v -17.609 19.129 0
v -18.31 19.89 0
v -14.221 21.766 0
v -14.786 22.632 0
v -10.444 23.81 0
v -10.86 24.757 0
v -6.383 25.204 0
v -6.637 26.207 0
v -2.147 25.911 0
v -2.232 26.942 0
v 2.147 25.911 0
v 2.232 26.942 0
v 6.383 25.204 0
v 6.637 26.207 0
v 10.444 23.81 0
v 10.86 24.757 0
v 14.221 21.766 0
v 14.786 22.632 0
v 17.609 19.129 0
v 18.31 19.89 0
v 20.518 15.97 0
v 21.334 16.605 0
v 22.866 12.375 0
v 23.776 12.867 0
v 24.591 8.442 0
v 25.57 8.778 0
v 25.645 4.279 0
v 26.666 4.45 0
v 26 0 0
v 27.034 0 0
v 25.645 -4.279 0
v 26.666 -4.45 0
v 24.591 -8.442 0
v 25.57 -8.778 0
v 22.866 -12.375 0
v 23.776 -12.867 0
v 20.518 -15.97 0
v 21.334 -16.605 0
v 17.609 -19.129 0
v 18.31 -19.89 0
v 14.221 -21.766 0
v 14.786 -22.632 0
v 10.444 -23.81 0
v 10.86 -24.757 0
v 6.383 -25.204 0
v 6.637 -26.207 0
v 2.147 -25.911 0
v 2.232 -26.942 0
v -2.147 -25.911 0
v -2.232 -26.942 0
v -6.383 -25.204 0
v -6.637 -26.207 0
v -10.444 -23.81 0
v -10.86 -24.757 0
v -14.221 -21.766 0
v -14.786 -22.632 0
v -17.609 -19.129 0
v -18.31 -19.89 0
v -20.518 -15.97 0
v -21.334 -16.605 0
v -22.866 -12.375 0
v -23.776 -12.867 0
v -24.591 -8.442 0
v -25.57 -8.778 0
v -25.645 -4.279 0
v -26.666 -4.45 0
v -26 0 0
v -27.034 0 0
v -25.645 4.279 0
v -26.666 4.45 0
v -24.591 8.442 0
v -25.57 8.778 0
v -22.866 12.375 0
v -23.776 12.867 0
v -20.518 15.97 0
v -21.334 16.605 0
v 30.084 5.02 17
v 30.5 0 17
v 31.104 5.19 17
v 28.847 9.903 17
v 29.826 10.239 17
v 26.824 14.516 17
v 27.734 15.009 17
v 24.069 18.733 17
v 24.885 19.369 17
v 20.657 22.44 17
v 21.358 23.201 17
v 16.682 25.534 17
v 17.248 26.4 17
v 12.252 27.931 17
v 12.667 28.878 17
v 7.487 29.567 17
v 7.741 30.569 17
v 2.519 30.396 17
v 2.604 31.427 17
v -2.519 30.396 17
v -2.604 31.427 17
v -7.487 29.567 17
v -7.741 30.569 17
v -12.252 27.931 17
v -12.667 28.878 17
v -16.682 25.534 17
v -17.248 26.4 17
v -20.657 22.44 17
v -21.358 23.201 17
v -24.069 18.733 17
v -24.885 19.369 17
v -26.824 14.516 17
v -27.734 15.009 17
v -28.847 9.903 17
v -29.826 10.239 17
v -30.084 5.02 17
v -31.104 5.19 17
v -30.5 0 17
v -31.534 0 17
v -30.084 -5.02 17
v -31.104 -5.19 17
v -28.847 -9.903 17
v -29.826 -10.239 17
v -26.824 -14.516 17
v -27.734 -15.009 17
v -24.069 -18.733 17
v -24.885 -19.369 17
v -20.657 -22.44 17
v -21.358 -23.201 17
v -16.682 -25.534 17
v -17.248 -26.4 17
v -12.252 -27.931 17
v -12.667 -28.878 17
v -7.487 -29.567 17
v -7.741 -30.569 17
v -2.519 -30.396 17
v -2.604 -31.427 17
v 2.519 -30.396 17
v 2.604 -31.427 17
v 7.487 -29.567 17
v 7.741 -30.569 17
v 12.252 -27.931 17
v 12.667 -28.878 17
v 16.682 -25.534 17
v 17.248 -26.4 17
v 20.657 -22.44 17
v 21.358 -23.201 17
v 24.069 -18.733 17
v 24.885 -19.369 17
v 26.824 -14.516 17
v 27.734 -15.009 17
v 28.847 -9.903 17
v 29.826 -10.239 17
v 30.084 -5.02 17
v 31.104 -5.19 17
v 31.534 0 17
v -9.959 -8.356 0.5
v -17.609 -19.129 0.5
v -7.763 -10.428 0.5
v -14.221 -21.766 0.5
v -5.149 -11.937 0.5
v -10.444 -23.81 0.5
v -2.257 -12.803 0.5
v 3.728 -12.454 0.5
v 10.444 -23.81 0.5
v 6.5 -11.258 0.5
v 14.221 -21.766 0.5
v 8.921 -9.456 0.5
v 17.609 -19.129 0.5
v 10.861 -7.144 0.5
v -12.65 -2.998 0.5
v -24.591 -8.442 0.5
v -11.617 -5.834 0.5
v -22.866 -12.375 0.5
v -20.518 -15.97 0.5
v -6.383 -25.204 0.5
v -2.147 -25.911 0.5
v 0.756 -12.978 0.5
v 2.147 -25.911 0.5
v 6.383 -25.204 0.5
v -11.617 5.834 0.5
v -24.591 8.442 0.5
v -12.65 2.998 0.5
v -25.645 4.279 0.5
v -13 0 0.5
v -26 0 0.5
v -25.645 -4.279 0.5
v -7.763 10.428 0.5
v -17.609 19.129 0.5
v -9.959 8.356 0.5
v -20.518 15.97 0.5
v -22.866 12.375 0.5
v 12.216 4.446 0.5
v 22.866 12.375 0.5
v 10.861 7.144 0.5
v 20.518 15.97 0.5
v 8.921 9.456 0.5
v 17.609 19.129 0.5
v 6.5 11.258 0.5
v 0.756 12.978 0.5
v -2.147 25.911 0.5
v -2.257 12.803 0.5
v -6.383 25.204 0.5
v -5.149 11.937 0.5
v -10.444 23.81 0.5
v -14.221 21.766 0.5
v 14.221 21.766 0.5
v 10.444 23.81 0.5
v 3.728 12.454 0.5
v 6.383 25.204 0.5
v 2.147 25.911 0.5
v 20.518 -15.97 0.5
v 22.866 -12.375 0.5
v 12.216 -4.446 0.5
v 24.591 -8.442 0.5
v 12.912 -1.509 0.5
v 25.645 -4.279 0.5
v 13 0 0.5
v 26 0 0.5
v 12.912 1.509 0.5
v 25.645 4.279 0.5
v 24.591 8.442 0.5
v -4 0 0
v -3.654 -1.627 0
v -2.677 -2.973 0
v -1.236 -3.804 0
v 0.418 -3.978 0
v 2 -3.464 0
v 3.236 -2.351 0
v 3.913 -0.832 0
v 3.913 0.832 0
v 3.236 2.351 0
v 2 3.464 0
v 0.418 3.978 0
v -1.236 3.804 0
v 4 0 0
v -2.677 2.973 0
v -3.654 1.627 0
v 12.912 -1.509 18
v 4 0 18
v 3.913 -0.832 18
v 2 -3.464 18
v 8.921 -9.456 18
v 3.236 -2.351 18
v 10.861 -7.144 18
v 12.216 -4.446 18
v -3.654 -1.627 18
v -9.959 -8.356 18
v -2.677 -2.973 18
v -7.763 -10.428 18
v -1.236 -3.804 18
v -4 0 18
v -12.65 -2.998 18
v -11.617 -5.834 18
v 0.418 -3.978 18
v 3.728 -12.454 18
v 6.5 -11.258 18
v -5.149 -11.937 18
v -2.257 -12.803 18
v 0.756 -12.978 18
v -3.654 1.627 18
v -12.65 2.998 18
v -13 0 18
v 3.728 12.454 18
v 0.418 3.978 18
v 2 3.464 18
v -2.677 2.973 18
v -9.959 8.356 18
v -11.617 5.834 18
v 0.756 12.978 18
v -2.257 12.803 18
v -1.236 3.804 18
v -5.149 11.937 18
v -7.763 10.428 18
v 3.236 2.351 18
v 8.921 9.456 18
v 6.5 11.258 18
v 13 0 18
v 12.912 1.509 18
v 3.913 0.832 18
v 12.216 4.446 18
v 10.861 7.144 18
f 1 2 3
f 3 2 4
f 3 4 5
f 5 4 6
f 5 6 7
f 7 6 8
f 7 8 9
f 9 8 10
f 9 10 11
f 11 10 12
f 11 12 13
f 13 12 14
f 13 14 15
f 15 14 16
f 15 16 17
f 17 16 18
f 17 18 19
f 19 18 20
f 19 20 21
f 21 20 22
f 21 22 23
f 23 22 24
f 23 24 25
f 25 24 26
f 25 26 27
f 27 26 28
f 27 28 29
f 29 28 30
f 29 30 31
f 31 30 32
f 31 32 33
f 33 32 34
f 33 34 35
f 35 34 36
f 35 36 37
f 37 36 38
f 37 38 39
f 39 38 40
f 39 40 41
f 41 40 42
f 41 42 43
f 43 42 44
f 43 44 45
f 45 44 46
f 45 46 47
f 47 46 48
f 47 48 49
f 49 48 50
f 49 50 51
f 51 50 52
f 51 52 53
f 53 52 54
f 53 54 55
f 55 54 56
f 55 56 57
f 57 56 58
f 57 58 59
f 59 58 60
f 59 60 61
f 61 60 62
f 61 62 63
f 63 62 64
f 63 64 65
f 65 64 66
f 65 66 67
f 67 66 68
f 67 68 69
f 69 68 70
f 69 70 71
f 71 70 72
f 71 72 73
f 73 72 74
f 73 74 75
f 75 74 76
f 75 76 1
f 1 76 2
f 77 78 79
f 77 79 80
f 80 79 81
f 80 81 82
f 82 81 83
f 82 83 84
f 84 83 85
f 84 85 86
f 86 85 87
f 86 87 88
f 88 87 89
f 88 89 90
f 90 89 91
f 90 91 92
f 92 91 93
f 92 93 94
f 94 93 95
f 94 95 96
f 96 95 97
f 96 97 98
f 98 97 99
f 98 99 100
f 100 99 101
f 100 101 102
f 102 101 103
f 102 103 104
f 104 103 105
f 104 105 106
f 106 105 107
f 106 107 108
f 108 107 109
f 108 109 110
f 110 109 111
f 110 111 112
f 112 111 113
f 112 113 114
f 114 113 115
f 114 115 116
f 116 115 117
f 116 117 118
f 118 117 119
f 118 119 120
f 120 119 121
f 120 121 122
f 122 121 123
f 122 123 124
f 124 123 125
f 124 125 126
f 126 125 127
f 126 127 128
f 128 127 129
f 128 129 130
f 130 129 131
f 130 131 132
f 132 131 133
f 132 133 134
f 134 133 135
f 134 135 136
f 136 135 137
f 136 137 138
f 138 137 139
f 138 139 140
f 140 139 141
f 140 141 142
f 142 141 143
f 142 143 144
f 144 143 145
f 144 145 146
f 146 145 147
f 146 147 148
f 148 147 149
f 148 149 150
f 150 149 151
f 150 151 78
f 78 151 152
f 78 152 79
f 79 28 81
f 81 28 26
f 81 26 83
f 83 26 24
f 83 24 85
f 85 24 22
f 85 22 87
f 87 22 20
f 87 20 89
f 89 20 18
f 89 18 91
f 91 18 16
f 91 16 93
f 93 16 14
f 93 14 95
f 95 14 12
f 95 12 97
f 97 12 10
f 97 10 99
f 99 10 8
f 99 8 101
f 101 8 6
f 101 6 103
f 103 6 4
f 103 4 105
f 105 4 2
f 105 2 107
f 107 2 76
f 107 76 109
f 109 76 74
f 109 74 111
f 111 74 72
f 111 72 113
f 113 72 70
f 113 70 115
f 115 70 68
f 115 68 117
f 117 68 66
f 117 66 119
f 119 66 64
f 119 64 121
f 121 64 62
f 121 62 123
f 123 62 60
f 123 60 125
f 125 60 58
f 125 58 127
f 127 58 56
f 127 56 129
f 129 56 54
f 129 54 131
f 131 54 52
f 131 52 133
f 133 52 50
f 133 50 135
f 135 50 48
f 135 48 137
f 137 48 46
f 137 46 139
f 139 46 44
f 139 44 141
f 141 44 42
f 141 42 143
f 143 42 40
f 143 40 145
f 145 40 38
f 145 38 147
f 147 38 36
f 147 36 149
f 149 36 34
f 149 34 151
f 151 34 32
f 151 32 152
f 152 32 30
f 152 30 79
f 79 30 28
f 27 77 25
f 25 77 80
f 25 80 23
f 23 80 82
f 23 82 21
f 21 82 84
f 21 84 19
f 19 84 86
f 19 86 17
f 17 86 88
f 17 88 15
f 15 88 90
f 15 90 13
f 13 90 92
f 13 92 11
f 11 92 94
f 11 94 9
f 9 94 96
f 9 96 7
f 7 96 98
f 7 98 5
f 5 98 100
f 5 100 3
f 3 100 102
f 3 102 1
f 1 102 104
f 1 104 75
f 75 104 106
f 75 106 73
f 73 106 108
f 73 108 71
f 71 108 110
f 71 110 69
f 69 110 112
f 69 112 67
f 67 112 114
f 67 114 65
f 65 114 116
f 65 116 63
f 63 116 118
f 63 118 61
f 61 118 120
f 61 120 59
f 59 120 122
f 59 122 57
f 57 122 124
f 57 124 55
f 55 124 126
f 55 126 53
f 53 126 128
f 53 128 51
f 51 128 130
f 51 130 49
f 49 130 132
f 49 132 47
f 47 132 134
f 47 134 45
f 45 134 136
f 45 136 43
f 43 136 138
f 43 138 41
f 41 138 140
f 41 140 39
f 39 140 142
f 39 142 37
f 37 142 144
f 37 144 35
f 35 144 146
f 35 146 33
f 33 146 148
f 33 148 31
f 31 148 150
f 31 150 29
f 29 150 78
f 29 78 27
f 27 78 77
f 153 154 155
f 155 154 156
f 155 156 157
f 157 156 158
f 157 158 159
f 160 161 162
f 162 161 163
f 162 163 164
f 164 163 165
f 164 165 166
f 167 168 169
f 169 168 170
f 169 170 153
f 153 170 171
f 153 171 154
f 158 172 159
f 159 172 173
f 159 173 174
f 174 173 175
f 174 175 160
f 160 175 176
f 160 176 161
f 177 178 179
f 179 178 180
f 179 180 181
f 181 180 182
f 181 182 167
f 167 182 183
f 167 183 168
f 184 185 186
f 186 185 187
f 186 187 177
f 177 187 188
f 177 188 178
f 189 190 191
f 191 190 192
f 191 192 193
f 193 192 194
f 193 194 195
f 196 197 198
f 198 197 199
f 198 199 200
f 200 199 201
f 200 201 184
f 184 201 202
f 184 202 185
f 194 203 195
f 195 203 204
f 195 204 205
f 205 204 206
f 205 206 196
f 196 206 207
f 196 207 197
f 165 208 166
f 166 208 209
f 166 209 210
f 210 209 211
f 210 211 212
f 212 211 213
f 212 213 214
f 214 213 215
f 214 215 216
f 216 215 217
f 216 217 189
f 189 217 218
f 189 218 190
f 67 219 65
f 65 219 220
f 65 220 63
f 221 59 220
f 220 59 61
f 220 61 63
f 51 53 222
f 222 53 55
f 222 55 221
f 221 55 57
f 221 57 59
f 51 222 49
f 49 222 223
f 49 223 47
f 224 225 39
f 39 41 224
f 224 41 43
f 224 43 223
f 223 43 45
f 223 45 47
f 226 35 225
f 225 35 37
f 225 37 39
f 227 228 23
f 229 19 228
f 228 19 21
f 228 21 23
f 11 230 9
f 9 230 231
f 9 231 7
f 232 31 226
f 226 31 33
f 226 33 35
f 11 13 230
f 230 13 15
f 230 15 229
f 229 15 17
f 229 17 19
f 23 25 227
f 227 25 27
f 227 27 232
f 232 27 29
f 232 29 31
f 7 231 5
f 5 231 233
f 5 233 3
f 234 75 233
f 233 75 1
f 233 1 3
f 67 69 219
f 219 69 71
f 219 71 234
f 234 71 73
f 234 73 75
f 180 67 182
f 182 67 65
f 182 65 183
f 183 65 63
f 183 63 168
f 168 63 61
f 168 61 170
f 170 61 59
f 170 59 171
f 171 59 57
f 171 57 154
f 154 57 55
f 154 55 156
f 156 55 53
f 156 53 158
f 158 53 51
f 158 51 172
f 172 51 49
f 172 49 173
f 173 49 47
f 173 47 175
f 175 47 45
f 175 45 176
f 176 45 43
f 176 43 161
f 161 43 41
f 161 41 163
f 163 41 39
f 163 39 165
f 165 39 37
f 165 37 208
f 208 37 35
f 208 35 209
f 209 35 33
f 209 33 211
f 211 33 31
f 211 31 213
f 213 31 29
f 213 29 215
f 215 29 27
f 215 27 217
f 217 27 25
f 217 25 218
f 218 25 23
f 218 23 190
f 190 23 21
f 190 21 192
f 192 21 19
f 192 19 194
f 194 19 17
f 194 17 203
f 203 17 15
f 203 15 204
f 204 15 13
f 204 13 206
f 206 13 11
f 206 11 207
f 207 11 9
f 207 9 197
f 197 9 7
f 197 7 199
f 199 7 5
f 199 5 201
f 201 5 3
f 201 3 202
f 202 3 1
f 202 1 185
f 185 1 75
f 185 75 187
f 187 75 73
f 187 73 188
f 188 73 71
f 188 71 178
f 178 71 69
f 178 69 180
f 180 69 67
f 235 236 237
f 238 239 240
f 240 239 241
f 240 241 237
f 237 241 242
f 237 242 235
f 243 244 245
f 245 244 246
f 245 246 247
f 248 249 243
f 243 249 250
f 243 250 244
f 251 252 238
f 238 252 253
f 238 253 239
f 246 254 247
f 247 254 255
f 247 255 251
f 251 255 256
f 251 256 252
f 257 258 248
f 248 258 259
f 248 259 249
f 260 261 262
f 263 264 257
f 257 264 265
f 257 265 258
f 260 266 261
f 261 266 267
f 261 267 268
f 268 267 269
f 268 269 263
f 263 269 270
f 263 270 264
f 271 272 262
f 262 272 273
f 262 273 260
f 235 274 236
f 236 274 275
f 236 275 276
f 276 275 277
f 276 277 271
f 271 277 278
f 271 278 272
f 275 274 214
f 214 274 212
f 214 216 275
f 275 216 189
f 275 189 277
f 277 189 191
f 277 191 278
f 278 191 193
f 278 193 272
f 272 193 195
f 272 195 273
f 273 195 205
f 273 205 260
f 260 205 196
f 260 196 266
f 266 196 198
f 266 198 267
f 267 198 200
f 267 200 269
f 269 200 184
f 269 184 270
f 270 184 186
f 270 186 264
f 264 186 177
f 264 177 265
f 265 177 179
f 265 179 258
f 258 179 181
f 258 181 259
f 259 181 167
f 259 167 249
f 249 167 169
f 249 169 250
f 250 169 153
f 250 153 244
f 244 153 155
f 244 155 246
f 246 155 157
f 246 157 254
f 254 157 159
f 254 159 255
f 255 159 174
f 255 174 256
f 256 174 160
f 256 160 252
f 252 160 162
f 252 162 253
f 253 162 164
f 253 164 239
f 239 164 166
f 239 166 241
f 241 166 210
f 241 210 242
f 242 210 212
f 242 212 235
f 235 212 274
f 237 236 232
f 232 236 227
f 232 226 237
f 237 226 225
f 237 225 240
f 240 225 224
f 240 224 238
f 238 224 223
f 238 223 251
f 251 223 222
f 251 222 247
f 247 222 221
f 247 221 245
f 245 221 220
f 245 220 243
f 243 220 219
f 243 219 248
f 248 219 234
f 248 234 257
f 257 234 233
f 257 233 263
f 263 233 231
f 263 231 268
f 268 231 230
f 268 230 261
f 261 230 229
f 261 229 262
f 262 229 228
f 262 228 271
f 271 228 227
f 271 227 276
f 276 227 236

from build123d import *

# Parameters (mm, degrees)
SKETCH_1_R          = 26
SKETCH_1_R_2        = 13
EXTRUDE_1_DEPTH     = 0.5
SKETCH_7_R          = 13
SKETCH_7_R_2        = 4
BOSS_EXTRUDE1_DEPTH = 18


# Read off the part's stored shape, not the designer's step: По сечениям-Тонкостенный1
with BuildPart() as part:
    # Эскиз1 → Вытянуть1 (new body)
    with BuildSketch(Plane.XY):
        Circle(SKETCH_1_R)
        Circle(SKETCH_1_R_2, mode=Mode.SUBTRACT)
    extrude(amount=EXTRUDE_1_DEPTH)

    # Эскиз7 → Boss-Extrude1 (add)
    with BuildSketch(Plane.XY):
        Circle(SKETCH_7_R)
        Circle(SKETCH_7_R_2, mode=Mode.SUBTRACT)
    extrude(amount=BOSS_EXTRUDE1_DEPTH)


with BuildPart() as body_2:
    # По сечениям-Тонкостенный1 outline → По сечениям-Тонкостенный1 (revolve)
    with BuildSketch(Plane.XZ):
        Polygon((30.5, 17), (26, 0), (27.034441494, 0), (31.534441494, 17), align=None)
    revolve(axis=Axis((0, 0, 0), (0, 0, 1)))


solid = Compound([part.part, body_2.part])
